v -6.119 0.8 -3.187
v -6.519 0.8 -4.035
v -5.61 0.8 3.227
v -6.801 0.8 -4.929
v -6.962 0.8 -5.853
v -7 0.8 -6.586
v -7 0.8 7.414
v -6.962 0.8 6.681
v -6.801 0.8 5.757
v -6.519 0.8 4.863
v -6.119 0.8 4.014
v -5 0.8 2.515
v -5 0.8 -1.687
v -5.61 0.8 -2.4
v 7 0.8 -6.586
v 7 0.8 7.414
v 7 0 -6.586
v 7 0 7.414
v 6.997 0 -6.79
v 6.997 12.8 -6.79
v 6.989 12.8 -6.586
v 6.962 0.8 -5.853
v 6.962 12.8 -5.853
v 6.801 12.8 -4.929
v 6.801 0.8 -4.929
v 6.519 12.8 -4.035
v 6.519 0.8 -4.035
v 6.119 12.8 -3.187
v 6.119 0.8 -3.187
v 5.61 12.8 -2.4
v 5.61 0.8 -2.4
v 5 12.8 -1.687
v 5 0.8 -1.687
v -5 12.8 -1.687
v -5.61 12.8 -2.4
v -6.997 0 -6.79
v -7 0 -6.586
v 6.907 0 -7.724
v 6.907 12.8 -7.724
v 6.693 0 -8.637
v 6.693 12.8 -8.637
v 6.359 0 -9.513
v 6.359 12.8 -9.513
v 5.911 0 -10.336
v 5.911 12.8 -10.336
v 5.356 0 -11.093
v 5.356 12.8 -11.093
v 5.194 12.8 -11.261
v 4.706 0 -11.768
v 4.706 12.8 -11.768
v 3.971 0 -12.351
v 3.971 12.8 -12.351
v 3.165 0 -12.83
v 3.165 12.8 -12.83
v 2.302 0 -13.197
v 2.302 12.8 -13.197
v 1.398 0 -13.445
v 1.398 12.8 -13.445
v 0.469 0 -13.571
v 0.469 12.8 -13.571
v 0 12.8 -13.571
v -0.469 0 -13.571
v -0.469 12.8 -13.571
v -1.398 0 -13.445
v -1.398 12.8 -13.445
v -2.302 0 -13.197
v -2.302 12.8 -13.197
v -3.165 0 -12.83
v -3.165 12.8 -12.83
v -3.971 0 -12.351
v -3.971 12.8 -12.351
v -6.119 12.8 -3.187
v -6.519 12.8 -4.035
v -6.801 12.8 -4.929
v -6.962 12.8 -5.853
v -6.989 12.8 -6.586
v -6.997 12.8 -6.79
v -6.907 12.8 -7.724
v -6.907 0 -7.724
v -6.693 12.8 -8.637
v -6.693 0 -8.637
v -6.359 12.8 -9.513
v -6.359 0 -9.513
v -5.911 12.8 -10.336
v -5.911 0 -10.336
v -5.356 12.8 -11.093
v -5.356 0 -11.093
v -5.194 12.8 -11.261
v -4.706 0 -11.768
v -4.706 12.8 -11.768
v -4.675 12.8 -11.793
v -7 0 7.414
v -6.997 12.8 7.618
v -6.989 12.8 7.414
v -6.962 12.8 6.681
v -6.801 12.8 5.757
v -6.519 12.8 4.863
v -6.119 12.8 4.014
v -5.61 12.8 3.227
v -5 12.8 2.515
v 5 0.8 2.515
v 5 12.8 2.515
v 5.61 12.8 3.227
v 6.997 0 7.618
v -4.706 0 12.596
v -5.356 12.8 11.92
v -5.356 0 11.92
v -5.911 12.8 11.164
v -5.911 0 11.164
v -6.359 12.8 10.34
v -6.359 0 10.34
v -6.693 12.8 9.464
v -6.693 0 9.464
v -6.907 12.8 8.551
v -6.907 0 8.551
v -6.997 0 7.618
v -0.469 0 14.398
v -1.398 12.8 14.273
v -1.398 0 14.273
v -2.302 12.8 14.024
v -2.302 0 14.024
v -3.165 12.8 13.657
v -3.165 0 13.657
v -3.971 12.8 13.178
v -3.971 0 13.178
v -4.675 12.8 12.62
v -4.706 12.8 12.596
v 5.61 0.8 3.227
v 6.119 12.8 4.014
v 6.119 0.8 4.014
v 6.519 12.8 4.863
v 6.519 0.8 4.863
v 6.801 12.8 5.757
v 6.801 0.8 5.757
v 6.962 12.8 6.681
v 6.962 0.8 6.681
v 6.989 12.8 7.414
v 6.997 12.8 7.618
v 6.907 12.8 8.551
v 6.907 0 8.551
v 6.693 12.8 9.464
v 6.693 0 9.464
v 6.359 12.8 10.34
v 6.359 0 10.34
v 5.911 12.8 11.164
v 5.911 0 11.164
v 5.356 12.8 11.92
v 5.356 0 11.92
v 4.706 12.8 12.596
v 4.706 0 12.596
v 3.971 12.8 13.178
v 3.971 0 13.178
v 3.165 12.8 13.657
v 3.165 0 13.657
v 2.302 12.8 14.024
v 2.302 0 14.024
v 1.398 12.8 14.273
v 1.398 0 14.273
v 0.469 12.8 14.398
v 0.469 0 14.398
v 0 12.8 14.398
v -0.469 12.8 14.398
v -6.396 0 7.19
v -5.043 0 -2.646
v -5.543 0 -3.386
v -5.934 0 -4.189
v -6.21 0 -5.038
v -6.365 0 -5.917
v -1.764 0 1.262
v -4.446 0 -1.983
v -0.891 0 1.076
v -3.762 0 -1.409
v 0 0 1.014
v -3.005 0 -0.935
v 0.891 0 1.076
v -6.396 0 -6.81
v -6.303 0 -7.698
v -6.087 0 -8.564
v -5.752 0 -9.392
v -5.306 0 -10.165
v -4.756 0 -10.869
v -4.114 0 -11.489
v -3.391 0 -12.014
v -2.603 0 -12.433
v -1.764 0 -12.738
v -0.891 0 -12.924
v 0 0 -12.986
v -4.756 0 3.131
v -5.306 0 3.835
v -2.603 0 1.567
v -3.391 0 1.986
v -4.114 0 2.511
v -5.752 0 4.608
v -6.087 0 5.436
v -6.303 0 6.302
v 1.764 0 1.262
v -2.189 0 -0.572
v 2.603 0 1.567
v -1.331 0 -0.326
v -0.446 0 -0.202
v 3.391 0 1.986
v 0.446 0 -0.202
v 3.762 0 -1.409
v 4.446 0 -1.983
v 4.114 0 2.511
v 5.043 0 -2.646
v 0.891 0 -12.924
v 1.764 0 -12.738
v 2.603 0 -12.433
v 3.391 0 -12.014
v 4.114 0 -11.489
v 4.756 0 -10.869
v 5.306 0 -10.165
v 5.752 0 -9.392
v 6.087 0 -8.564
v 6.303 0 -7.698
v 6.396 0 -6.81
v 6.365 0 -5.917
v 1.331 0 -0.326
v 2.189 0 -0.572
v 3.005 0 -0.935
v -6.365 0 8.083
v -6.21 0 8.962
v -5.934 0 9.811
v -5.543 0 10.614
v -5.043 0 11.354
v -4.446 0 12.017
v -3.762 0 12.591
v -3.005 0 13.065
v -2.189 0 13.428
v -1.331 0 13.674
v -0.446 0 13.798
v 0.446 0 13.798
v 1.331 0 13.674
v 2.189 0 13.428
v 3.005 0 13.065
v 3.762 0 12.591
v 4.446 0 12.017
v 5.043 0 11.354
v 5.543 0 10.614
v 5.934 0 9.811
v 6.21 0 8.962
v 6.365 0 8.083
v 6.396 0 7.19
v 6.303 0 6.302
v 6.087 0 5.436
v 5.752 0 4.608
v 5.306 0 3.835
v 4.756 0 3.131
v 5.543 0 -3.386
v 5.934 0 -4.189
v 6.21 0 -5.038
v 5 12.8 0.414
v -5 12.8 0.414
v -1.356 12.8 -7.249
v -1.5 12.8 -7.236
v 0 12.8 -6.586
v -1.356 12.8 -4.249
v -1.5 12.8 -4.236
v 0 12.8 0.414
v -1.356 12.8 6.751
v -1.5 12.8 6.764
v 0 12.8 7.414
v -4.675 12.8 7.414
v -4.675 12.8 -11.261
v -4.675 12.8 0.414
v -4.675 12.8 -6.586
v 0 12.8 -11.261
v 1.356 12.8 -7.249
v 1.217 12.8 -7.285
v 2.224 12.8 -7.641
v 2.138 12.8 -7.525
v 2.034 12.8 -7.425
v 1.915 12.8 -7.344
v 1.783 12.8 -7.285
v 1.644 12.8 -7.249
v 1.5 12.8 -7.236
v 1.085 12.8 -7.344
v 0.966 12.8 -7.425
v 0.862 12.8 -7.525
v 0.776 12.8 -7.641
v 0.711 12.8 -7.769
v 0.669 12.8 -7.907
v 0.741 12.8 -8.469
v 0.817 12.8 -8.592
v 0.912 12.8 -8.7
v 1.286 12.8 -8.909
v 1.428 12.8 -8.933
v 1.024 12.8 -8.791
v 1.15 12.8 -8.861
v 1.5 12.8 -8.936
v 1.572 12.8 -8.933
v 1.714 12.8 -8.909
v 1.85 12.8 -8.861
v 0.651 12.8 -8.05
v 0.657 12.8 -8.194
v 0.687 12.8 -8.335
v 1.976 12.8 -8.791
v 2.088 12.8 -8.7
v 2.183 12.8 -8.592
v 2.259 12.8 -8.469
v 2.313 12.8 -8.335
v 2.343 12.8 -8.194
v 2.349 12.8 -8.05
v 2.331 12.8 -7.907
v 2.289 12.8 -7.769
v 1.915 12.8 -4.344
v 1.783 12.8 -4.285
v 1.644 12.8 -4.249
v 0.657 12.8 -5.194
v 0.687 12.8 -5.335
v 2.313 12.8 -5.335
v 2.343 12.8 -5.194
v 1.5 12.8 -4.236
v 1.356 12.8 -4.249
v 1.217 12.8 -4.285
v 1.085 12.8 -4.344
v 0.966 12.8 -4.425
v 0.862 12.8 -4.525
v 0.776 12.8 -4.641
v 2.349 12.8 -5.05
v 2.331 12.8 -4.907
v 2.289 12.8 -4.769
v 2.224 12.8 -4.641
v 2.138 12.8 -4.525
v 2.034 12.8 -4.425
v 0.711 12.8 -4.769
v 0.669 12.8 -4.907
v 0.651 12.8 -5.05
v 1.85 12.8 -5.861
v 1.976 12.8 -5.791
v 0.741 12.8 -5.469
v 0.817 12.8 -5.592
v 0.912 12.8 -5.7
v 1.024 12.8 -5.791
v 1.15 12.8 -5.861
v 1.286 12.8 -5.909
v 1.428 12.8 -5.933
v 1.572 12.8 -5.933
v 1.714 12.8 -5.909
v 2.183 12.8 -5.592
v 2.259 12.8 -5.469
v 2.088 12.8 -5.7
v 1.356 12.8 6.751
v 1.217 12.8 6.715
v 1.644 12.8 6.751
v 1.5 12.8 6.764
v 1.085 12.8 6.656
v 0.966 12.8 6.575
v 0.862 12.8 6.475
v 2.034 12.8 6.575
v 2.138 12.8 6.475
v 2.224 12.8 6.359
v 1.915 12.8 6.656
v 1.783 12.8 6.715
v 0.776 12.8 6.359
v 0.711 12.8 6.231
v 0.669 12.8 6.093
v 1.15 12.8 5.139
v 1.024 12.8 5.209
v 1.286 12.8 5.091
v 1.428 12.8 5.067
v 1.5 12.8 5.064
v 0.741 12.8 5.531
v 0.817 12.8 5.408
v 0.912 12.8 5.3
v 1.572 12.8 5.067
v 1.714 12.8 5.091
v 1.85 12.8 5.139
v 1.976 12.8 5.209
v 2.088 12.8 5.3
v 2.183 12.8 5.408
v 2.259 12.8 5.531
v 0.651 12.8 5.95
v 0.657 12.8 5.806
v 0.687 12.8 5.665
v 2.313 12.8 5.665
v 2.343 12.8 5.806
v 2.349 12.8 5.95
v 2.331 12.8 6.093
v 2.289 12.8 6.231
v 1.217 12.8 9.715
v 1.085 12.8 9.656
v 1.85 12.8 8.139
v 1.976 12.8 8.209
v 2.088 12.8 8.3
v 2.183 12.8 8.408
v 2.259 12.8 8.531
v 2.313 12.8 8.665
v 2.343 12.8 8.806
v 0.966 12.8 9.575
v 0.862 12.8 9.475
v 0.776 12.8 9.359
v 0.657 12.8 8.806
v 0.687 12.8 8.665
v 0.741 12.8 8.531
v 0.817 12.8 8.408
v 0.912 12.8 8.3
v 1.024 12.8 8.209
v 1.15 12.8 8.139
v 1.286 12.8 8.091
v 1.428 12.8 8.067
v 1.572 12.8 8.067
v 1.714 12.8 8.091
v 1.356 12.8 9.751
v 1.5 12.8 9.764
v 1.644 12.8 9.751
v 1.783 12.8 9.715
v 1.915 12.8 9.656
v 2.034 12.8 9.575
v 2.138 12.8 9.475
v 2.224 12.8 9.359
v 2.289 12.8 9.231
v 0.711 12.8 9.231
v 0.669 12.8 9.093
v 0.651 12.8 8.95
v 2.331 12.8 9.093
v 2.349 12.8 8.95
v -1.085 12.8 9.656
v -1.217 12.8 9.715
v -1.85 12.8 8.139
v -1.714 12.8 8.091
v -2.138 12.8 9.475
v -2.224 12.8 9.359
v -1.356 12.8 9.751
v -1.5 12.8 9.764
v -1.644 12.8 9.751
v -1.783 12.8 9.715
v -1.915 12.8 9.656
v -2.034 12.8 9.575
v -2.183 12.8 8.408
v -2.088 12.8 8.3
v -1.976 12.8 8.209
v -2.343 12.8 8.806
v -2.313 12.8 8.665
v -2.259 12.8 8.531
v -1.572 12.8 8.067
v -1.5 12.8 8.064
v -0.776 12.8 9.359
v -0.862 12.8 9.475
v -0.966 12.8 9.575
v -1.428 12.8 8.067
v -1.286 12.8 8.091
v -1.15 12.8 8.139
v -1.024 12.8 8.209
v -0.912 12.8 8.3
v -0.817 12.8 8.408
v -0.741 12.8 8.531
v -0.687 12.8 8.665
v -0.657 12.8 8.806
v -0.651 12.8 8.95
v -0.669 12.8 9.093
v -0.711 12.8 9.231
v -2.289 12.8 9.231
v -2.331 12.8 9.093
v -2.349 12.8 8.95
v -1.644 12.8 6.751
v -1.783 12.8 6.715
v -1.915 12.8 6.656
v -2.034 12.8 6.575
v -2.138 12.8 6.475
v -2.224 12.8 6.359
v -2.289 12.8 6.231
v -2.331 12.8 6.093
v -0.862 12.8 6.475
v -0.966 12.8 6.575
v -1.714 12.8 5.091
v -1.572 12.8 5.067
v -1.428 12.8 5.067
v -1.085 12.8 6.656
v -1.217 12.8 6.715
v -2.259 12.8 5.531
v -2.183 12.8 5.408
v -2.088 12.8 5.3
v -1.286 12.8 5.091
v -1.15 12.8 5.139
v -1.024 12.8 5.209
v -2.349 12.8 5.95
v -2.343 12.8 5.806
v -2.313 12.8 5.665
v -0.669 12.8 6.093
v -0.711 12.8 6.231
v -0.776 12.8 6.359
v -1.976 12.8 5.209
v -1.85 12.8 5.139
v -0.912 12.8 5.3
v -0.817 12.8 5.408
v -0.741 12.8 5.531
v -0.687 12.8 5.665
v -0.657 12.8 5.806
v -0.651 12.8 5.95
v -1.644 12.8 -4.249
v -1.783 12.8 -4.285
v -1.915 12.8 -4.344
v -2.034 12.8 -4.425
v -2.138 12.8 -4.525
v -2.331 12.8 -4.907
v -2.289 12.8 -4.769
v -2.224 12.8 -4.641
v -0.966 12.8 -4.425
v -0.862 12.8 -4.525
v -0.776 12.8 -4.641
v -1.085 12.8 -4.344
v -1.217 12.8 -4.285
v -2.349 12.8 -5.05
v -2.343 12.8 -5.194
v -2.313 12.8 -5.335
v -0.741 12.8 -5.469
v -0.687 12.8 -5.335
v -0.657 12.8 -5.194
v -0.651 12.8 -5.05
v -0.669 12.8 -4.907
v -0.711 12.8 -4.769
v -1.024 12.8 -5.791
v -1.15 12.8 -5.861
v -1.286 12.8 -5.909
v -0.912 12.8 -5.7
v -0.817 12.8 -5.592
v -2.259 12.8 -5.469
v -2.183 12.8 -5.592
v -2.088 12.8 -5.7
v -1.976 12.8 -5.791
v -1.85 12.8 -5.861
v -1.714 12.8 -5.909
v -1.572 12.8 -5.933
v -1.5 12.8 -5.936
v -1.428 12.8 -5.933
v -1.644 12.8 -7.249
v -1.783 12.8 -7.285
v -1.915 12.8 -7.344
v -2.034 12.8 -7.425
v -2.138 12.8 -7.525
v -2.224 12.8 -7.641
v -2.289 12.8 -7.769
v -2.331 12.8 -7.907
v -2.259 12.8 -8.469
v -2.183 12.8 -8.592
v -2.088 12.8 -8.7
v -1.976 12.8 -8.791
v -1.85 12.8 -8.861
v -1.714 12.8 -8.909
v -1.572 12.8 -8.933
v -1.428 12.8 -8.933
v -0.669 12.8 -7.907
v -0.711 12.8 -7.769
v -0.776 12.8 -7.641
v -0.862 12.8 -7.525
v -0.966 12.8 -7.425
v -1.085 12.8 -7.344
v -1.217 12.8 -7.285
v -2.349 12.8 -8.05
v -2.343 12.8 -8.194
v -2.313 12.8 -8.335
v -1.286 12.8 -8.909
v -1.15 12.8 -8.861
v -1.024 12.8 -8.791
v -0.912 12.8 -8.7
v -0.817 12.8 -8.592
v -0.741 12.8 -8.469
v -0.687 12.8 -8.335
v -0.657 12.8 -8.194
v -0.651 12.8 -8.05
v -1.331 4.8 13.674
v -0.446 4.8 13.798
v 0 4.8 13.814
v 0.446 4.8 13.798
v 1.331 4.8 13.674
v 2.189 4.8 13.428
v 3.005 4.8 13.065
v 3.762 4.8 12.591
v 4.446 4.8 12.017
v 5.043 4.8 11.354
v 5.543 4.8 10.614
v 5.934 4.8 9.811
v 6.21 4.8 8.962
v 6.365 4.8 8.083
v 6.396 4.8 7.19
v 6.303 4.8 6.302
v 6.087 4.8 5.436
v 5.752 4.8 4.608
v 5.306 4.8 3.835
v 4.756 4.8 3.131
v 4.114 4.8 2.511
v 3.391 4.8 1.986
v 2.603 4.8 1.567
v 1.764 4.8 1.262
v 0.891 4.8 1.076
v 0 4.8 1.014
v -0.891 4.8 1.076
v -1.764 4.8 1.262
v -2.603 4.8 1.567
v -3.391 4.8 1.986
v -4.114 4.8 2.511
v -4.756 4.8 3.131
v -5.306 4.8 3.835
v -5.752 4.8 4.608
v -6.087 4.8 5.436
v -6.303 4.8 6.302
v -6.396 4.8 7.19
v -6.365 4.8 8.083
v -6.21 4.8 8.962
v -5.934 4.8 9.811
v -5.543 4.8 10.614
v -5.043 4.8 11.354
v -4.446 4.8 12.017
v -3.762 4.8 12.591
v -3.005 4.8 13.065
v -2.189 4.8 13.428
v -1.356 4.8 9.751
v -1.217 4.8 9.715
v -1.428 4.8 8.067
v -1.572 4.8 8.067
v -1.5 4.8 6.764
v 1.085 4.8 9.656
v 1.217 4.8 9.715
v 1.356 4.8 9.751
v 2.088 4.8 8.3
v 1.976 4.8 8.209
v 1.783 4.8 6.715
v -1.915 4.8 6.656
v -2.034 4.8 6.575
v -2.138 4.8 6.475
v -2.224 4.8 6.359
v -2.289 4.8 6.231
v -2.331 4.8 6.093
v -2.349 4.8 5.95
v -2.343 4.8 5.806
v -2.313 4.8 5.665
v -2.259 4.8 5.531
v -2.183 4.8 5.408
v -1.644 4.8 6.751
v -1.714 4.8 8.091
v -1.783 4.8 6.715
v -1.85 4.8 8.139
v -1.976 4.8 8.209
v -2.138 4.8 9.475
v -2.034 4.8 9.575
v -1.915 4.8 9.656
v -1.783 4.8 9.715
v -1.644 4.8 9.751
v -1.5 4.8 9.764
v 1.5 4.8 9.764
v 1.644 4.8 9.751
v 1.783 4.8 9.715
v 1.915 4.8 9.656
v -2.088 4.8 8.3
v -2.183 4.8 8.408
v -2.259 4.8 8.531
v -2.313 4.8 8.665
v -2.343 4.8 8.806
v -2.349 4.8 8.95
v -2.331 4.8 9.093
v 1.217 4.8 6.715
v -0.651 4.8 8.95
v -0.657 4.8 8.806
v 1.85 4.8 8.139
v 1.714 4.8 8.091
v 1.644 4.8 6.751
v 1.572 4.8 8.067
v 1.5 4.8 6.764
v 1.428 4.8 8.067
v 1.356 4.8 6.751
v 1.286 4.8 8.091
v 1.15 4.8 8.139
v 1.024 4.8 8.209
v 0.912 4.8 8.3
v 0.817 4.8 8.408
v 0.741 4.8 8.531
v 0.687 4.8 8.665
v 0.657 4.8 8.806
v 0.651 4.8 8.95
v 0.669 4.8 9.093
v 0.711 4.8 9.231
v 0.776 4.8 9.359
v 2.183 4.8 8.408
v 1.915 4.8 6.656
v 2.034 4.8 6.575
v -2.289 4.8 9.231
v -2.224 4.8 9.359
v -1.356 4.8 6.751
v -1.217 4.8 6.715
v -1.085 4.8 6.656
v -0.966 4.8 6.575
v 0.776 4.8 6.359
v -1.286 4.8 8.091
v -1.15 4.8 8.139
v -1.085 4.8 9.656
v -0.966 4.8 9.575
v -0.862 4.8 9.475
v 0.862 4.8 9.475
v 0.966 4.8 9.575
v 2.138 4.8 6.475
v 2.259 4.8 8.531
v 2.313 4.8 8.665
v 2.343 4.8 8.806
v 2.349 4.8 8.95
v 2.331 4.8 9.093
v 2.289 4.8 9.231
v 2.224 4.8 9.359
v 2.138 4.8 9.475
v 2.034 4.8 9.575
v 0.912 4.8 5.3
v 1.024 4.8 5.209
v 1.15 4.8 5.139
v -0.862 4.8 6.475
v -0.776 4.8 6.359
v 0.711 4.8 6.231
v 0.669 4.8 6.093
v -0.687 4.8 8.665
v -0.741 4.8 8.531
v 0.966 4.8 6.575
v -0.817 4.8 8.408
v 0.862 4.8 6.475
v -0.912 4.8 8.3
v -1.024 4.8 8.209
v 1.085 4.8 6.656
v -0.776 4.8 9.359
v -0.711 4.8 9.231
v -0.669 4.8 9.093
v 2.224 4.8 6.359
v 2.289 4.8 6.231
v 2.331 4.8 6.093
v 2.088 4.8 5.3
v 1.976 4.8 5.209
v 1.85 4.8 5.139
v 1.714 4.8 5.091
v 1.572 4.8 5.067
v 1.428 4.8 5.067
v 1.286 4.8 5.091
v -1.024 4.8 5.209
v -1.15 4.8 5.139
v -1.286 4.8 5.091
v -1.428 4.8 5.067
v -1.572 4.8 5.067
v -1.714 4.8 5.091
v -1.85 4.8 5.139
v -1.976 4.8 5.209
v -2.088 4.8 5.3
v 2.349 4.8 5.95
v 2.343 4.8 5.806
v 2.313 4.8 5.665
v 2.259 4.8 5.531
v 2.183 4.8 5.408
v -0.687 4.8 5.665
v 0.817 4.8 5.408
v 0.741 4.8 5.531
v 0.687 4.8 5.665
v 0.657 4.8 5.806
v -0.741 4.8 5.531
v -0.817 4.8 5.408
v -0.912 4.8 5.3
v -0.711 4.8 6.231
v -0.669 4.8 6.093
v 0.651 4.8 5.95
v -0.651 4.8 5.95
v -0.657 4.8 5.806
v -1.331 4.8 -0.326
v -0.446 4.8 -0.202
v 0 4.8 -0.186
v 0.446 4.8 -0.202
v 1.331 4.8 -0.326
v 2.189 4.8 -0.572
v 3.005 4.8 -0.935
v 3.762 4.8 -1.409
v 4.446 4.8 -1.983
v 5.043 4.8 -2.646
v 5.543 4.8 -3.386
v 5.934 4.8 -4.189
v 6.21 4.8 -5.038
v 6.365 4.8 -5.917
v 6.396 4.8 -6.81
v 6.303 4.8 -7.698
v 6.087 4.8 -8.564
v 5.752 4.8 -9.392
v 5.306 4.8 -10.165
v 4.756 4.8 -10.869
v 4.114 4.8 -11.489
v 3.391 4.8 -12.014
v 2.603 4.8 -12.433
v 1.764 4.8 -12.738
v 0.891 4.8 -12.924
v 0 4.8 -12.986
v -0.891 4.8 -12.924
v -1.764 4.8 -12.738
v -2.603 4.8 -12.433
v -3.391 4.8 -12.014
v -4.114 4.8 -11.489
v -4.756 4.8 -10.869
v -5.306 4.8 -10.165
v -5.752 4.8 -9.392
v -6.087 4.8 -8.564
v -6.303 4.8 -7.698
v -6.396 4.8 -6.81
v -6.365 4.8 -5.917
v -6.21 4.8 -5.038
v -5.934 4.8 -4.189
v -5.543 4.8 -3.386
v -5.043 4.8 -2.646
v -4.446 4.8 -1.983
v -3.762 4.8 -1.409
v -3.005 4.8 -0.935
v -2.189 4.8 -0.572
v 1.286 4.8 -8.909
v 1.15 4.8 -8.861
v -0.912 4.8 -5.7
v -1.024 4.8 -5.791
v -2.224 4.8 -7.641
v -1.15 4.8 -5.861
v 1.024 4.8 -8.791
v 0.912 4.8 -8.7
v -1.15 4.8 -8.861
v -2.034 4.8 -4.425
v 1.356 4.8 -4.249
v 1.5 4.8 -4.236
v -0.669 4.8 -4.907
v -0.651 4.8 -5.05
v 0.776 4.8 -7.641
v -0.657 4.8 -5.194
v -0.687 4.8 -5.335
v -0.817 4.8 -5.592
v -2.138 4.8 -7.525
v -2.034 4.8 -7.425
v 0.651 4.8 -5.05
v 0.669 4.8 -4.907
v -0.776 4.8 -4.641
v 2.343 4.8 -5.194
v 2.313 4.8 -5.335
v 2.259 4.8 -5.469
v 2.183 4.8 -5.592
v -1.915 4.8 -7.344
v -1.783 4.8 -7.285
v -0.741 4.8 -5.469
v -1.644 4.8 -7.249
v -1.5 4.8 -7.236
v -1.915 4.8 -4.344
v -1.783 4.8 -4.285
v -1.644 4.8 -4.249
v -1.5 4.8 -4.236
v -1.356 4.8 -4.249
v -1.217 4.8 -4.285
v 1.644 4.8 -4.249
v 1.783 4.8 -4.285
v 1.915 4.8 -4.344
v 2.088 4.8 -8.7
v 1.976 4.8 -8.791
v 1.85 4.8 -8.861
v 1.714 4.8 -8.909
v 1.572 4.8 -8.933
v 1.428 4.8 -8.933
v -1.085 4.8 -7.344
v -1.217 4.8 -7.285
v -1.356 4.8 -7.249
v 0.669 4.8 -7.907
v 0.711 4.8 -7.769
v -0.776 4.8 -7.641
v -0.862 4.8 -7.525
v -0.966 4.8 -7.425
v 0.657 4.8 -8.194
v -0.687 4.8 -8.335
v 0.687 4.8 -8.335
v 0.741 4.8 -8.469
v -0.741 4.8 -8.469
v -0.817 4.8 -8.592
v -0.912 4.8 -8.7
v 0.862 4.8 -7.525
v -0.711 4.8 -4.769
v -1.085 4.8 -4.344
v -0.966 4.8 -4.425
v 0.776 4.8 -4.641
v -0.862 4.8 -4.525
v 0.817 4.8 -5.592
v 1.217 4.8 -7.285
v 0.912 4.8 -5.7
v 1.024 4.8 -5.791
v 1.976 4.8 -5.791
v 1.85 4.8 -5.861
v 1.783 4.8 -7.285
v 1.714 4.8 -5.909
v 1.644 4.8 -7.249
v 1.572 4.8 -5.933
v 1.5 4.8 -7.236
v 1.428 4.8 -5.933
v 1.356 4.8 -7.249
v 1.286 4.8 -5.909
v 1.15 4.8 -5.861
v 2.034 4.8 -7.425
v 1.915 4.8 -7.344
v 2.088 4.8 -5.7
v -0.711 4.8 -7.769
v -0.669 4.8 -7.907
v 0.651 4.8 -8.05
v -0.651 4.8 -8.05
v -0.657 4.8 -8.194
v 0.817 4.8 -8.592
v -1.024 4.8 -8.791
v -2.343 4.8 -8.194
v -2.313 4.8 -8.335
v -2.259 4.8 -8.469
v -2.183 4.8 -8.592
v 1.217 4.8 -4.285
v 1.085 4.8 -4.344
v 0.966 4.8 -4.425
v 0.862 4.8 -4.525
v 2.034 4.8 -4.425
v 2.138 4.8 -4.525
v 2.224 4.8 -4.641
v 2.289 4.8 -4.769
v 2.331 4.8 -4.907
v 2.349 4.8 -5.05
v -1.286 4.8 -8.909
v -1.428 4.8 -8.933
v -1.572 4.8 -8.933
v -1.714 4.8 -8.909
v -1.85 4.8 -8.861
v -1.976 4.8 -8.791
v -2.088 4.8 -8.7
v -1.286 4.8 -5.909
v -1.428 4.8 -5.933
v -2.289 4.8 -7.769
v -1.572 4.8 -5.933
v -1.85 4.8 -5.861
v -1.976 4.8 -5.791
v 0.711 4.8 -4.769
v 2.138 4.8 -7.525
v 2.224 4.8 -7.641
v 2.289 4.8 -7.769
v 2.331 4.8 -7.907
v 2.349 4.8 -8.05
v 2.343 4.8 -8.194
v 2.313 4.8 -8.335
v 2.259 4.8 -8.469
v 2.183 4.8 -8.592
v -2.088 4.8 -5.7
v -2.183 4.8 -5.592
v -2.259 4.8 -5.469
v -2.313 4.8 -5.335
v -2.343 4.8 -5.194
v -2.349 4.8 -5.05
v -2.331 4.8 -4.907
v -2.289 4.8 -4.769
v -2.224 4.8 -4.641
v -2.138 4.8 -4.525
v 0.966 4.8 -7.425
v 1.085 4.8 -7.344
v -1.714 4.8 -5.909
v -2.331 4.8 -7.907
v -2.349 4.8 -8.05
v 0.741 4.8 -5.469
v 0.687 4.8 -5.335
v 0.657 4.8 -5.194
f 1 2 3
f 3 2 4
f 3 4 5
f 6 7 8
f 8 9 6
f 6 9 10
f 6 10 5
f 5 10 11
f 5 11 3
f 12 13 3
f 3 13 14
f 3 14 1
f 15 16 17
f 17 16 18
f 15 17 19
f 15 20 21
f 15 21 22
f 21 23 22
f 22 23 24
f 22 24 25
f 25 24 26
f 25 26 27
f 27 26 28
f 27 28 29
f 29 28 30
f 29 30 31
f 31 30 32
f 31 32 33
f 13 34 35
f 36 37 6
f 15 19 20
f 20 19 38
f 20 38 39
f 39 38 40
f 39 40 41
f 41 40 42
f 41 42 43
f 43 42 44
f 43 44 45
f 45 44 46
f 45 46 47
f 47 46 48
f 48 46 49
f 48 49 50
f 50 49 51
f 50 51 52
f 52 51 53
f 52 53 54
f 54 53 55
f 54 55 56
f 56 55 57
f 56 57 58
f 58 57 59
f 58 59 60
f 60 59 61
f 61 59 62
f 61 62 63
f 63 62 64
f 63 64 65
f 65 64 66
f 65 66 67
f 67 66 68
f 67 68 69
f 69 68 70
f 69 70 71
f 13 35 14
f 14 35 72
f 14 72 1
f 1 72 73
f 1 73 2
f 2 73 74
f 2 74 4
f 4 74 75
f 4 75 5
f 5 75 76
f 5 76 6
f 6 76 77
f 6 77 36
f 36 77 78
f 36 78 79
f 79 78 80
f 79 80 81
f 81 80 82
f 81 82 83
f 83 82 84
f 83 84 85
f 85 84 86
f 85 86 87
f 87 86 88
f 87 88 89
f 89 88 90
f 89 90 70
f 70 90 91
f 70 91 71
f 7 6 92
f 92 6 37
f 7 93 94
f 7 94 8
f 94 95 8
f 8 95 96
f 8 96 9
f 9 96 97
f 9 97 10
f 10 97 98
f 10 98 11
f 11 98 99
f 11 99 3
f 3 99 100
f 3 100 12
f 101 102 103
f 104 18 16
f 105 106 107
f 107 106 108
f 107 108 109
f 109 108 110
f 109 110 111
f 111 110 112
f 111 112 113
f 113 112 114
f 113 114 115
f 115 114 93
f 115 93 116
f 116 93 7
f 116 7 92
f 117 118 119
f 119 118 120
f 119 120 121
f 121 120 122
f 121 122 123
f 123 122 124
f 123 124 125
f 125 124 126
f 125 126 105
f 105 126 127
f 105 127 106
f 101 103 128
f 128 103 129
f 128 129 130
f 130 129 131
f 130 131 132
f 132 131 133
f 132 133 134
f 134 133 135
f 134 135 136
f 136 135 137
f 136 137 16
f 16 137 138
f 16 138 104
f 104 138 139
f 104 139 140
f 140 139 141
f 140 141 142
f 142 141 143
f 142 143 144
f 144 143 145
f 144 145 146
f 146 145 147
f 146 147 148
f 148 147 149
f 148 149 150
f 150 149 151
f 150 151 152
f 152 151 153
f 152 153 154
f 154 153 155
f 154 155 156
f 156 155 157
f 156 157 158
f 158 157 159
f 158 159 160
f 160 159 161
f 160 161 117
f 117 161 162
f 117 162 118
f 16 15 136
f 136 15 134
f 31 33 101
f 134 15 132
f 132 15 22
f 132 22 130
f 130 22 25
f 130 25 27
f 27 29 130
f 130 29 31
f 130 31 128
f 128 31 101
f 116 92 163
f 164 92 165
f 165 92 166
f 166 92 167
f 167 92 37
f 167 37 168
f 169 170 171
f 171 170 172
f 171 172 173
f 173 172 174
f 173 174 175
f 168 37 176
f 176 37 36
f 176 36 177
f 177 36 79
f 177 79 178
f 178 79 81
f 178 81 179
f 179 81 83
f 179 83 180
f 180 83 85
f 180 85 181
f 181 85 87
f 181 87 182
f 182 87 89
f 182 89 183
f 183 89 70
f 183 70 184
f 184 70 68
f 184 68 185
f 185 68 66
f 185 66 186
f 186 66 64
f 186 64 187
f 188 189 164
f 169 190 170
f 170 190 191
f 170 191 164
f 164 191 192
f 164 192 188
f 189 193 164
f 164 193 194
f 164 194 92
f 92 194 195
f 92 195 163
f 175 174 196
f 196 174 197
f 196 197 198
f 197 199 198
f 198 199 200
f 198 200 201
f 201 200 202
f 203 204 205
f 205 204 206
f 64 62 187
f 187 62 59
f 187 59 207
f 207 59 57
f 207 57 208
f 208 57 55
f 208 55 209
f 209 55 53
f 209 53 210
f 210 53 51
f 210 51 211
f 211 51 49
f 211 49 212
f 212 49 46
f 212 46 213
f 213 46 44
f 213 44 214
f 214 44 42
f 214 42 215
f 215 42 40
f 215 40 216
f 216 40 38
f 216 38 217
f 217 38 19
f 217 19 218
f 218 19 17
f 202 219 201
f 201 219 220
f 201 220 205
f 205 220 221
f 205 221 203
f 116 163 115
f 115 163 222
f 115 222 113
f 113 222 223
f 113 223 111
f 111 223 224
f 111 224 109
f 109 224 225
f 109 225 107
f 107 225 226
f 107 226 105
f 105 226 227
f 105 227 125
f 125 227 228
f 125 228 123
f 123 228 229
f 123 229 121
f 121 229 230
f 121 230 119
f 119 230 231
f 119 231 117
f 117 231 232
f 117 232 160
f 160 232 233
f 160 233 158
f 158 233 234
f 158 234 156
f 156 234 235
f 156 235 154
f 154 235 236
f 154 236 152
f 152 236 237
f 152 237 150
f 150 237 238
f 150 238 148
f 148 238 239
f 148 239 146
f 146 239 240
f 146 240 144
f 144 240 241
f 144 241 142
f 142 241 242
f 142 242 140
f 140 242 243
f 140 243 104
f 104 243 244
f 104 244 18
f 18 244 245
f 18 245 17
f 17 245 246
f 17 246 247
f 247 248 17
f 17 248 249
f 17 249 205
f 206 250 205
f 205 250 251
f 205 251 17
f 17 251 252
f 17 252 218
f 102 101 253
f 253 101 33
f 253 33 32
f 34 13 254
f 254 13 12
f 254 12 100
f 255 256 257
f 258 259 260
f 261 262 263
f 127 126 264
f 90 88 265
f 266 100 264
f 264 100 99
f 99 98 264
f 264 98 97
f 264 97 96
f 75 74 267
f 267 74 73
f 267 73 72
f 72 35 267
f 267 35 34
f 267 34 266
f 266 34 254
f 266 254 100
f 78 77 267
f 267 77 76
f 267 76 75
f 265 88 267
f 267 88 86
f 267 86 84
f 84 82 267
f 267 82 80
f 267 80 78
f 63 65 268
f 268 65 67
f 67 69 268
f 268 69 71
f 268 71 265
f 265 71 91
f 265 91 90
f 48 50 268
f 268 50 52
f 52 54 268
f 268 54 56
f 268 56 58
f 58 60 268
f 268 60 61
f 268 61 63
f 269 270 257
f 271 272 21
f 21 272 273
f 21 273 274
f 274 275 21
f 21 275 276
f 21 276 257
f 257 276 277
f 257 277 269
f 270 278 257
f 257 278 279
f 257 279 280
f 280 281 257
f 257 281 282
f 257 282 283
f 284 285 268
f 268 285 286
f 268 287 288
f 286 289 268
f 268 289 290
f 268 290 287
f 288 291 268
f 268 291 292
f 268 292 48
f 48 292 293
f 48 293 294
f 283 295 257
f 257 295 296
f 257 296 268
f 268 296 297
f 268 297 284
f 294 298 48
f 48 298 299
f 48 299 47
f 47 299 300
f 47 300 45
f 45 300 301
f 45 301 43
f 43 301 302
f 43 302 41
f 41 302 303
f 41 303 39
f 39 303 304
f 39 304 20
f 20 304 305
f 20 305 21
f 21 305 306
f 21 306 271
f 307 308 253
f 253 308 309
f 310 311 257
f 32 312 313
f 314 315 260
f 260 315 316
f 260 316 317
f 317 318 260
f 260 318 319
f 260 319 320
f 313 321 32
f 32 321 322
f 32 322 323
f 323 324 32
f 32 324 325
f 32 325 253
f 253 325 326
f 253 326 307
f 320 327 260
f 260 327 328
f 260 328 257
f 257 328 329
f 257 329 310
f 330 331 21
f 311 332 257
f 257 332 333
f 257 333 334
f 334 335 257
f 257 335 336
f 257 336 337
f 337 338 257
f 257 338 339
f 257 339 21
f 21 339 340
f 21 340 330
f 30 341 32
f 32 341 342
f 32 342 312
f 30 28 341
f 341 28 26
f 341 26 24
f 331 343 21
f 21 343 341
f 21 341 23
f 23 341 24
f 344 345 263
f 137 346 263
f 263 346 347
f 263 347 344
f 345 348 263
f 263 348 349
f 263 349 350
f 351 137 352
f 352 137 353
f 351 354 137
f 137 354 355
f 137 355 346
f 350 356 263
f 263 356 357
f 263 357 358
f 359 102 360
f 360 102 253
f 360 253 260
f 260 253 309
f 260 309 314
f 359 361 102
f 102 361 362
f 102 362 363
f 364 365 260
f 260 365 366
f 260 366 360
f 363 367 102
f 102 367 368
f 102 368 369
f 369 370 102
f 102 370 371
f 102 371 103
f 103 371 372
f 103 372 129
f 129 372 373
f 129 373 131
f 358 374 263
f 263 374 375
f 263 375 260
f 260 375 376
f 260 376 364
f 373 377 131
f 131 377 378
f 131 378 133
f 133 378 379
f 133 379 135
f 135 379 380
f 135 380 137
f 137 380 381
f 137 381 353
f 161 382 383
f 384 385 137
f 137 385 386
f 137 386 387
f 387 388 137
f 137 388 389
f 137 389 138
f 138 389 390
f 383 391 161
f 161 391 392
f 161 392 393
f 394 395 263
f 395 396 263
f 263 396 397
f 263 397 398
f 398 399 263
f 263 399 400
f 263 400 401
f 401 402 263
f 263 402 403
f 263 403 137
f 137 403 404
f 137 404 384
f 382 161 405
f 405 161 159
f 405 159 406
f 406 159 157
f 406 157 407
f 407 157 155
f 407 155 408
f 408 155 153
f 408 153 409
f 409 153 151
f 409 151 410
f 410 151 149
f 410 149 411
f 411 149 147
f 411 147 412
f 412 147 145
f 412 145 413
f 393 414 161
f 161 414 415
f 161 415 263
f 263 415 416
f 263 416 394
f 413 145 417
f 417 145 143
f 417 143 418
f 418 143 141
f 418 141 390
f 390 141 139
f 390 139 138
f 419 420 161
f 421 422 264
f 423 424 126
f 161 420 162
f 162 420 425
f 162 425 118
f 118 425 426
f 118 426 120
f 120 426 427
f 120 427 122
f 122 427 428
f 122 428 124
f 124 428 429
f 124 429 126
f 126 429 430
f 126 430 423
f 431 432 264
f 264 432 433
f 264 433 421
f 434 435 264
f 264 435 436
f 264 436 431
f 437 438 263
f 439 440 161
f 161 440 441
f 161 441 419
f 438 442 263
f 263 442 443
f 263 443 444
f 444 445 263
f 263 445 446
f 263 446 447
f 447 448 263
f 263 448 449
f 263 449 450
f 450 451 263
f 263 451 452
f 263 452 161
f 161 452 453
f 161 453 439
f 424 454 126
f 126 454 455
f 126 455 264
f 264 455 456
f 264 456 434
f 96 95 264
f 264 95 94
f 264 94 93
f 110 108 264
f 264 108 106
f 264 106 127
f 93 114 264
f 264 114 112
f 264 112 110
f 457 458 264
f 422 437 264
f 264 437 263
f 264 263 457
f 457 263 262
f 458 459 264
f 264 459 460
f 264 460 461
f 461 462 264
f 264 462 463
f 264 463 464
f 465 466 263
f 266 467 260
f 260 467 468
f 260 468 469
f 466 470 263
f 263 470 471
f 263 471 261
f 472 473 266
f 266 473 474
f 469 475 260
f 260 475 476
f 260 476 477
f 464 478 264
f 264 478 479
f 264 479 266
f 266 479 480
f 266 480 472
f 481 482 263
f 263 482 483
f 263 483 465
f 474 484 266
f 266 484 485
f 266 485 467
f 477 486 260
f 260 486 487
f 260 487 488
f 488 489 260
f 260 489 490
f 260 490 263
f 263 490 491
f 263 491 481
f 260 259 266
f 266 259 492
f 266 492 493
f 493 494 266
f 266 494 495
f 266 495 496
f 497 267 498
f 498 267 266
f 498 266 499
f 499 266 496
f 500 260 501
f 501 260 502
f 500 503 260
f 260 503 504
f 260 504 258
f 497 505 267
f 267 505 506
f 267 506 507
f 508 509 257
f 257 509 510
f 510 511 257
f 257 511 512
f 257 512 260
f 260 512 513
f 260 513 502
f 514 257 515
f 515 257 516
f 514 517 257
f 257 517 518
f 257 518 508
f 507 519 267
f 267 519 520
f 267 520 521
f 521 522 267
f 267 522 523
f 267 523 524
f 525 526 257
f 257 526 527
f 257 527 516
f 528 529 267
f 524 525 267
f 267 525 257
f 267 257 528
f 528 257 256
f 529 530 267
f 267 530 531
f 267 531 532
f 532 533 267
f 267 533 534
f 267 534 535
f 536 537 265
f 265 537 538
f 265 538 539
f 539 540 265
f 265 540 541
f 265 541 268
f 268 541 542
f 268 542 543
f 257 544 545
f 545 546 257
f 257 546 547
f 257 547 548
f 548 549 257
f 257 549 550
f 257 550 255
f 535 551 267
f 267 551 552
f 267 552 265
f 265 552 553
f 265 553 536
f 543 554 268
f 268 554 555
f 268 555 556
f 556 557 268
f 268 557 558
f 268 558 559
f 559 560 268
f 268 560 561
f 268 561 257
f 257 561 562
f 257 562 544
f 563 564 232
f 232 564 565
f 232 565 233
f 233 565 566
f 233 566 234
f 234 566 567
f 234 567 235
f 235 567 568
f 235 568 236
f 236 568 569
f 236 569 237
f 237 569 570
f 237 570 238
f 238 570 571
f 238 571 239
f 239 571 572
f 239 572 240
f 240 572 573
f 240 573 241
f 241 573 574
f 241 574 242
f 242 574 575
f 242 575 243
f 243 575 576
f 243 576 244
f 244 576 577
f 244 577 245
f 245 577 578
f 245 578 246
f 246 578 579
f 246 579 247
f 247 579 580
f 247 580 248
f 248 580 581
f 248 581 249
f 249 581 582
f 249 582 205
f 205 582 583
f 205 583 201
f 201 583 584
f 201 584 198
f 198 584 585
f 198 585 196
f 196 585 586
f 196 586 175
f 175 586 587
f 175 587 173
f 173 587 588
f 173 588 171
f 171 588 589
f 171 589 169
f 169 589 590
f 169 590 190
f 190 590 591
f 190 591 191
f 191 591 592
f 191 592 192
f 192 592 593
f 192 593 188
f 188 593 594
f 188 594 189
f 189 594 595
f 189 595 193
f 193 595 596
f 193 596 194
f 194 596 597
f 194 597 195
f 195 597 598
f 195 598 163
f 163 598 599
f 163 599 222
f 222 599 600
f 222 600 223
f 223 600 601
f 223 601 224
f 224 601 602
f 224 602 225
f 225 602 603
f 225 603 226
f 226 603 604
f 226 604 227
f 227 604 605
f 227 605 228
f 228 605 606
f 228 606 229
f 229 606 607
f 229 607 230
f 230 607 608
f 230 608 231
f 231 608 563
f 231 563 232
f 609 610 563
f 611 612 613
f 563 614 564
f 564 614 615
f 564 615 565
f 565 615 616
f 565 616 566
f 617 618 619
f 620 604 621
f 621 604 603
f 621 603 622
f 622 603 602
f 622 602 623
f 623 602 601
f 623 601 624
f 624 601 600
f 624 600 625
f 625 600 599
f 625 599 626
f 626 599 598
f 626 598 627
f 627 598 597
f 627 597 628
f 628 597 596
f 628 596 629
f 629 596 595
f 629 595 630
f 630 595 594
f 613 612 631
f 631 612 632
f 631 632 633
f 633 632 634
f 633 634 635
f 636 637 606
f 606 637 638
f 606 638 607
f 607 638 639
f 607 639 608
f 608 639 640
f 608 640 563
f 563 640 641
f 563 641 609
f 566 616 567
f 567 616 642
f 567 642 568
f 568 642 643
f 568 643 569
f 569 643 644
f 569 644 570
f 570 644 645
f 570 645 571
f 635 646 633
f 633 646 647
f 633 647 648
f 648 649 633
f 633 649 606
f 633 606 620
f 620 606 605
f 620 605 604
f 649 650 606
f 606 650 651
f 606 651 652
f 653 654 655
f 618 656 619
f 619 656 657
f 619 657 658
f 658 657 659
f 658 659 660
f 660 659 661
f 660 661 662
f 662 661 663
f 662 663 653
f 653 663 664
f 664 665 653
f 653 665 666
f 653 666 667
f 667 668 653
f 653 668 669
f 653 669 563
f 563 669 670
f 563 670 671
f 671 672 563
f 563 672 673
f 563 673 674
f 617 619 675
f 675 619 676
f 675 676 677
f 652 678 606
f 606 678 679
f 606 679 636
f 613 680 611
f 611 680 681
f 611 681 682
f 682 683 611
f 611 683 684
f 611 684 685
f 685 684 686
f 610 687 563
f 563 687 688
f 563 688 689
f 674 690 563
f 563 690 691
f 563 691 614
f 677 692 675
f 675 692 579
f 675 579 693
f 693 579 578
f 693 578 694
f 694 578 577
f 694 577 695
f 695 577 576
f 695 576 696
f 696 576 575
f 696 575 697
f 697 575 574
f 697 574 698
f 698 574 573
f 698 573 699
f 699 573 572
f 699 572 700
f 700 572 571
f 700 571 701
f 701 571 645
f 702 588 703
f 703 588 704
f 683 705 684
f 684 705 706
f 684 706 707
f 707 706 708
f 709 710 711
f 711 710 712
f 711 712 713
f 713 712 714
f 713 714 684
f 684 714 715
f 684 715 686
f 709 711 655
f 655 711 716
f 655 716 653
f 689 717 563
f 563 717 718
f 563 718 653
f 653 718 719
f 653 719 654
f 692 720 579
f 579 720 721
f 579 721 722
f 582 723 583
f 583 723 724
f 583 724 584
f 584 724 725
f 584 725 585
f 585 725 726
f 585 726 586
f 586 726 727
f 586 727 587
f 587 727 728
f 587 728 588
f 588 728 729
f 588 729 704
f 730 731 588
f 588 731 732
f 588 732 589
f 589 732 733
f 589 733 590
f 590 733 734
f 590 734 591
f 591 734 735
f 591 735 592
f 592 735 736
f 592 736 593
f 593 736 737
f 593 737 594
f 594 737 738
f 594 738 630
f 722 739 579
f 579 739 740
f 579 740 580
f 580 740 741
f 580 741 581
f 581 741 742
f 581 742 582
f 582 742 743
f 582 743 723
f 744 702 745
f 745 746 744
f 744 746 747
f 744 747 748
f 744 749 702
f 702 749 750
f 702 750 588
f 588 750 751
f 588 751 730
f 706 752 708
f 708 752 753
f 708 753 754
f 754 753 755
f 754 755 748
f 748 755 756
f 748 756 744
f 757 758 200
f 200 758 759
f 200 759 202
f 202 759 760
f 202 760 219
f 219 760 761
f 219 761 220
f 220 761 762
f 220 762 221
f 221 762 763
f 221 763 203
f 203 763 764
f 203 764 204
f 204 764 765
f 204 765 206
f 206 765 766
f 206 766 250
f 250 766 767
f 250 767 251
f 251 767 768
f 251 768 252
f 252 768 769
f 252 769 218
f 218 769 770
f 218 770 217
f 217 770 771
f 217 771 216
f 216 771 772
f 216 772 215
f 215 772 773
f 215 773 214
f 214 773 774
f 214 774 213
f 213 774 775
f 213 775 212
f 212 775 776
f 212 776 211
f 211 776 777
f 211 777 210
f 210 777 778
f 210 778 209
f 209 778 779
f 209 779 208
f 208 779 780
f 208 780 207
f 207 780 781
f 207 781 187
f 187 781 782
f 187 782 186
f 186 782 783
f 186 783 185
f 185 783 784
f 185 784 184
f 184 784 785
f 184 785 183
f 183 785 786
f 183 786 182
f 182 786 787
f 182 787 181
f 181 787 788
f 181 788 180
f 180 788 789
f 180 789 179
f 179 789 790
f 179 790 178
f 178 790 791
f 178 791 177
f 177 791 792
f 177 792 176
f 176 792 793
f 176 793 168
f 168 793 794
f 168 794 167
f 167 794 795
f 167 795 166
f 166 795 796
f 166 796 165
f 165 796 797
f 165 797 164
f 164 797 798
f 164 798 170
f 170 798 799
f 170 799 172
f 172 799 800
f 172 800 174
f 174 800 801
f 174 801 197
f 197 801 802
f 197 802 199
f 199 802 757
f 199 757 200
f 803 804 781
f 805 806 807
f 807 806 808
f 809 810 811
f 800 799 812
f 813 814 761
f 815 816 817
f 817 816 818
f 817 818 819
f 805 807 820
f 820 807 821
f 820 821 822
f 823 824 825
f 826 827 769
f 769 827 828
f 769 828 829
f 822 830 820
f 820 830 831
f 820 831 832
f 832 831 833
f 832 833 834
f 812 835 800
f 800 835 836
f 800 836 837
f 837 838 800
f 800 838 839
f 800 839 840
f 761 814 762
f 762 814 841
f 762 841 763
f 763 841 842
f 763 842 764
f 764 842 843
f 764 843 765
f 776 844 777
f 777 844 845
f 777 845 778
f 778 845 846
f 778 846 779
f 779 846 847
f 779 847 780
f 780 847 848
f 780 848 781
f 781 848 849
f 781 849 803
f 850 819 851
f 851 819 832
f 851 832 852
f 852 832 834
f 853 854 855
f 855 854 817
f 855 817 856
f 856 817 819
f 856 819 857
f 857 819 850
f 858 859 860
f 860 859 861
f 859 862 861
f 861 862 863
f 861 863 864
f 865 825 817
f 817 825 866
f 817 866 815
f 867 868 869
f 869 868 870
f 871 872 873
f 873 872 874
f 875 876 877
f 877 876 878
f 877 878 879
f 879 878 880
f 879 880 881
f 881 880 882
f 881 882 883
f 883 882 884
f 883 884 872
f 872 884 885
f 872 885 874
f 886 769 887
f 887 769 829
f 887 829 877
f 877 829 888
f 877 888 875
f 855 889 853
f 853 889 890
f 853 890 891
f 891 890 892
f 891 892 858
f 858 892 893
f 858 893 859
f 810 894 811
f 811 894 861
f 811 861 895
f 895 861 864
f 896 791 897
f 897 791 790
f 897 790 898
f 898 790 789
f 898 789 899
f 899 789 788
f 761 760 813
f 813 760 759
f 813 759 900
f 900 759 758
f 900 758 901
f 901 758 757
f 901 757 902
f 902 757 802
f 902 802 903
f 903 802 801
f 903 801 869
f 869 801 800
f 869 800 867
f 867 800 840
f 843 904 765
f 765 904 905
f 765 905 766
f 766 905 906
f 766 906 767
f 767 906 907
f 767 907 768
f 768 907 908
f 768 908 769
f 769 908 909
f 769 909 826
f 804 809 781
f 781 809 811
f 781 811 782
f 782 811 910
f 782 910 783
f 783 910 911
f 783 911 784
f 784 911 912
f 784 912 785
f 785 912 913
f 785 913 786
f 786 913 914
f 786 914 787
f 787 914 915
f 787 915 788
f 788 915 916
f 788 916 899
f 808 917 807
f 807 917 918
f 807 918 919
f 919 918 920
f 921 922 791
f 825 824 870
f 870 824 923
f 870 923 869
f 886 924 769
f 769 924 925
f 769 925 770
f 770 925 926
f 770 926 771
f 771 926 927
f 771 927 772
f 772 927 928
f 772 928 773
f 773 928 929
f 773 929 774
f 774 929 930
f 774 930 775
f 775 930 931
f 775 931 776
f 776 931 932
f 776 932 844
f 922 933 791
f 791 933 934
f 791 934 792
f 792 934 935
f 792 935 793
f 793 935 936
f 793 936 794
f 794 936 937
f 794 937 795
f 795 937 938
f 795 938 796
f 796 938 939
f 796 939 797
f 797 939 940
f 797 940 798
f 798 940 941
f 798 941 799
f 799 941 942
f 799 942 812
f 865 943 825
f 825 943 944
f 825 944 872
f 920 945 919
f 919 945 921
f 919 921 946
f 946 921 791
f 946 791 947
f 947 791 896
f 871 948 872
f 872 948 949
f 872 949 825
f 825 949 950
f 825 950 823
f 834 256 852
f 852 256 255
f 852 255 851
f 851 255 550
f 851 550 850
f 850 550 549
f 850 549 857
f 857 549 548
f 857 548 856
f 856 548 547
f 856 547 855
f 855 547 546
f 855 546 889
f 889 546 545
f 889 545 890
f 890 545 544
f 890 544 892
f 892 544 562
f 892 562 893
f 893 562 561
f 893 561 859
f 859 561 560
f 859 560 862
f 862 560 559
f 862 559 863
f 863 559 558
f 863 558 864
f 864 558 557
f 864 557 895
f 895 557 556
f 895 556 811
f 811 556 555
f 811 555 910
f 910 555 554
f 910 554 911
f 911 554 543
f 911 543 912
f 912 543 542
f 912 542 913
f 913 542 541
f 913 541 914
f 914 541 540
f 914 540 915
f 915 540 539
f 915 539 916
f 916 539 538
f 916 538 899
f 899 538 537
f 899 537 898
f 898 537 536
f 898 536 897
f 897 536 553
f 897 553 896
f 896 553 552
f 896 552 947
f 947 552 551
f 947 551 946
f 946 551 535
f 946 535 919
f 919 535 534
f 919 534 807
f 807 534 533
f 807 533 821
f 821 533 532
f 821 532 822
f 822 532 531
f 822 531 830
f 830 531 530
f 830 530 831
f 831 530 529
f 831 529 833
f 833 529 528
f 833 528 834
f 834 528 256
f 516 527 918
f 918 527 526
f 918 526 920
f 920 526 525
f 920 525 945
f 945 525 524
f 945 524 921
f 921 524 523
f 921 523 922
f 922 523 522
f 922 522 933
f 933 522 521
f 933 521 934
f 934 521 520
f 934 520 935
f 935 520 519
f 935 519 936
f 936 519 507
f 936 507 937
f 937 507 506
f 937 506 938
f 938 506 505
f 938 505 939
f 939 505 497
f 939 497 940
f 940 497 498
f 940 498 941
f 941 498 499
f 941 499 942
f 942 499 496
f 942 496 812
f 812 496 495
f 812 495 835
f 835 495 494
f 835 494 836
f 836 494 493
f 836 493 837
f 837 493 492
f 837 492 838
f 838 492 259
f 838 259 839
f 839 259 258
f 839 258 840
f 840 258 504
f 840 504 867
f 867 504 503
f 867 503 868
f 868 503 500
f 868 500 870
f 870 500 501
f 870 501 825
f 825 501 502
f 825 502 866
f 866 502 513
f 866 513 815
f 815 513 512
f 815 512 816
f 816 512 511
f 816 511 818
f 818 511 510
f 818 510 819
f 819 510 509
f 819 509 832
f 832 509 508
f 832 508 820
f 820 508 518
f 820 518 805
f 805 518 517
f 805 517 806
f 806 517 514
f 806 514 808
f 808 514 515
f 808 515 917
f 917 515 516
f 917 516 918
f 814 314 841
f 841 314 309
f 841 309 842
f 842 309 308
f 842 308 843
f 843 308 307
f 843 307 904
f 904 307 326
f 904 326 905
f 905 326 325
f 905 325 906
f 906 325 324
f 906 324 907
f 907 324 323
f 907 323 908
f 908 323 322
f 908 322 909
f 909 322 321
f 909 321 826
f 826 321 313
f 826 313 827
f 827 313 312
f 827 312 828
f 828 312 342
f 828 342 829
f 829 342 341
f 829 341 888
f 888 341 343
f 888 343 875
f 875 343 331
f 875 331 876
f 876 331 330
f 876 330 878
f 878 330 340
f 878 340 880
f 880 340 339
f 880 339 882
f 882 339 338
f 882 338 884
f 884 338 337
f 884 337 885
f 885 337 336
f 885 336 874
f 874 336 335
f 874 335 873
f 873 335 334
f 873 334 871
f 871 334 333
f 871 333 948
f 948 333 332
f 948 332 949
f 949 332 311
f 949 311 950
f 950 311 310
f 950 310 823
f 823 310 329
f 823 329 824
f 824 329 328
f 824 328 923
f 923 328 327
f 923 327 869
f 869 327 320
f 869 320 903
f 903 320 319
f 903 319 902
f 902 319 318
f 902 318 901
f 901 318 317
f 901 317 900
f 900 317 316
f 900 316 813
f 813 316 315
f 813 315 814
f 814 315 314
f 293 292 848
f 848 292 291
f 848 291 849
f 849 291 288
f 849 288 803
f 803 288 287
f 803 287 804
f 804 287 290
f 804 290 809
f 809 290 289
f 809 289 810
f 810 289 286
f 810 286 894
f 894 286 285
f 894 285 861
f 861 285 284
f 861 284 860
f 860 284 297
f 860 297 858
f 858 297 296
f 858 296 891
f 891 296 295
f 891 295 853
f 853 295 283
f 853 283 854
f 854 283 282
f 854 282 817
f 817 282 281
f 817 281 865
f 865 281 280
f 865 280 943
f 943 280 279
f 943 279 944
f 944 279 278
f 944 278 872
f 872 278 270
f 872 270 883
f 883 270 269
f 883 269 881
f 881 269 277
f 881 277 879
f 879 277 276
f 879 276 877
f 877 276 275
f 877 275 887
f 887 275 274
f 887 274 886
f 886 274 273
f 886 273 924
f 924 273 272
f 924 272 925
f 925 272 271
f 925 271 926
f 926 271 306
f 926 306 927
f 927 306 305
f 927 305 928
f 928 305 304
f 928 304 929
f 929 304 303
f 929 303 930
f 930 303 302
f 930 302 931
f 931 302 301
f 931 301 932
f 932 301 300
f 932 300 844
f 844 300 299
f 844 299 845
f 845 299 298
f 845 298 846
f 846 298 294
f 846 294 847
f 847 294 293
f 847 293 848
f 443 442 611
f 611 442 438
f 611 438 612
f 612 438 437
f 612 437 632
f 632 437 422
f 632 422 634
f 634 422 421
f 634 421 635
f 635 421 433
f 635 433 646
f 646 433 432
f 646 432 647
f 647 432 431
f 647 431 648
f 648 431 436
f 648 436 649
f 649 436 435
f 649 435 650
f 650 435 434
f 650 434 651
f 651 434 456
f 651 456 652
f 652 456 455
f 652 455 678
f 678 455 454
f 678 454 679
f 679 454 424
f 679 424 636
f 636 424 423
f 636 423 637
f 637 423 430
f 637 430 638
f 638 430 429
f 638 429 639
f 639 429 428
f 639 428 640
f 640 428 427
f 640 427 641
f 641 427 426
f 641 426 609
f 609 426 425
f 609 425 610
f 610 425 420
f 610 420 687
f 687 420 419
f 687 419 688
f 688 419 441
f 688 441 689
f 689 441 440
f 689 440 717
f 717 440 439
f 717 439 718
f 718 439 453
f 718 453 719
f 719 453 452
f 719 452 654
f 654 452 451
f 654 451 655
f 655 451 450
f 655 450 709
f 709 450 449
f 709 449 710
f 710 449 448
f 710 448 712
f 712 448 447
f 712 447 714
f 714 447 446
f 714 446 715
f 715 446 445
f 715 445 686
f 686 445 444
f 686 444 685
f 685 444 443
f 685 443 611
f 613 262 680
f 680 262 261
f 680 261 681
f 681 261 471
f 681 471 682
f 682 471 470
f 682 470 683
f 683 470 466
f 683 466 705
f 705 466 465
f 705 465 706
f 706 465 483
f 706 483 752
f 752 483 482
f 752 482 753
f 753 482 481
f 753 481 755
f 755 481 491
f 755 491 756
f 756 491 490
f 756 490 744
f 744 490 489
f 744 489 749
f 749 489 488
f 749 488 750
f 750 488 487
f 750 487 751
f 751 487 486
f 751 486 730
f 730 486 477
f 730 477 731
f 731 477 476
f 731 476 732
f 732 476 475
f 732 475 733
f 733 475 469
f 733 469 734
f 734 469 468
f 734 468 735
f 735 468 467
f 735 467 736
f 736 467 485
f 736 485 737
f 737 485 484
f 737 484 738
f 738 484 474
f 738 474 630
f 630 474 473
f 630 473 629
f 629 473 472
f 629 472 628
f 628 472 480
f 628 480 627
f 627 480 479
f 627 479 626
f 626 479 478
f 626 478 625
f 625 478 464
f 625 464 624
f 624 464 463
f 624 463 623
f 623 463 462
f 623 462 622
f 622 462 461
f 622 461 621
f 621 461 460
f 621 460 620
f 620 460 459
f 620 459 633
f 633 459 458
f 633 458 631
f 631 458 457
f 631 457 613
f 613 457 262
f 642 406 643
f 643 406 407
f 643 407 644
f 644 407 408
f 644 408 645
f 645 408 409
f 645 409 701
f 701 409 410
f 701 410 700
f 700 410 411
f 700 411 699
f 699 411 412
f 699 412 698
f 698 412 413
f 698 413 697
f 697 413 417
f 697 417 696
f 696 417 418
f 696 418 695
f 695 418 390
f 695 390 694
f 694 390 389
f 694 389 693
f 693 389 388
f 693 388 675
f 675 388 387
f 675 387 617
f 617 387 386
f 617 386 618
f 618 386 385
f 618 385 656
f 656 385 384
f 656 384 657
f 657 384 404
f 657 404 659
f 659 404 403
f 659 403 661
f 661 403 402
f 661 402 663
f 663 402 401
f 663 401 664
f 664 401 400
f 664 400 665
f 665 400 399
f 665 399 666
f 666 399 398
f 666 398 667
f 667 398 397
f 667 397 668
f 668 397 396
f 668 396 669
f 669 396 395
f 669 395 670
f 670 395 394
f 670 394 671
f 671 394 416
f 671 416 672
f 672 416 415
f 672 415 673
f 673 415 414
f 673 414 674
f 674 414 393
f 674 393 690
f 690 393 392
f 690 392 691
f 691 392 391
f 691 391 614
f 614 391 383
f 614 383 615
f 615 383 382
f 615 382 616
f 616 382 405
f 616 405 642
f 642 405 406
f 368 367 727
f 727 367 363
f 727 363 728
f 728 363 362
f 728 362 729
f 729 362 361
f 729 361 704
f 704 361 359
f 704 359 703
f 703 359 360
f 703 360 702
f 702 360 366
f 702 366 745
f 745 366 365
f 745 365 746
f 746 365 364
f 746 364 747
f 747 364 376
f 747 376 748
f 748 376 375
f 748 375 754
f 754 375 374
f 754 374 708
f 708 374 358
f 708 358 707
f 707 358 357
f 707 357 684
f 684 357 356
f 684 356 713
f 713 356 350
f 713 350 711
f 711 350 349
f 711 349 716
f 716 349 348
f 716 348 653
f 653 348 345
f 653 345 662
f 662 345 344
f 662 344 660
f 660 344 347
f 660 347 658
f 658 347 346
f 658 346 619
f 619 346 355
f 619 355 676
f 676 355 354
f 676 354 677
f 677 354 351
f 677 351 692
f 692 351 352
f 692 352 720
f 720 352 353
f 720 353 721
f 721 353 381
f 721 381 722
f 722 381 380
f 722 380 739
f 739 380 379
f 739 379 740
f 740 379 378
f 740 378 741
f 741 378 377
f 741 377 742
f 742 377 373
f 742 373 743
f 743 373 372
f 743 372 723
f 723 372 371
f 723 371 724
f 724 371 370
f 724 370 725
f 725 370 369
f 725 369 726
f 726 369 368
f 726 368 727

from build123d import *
from build123d.topology import SkipClean

# Parameters (mm, degrees)
EXTRUDE_1_DEPTH     = 0.8
SKETCH_2_R          = 6.4
EXTRUDE_2_DEPTH     = 4
EXTRUDE_3_DEPTH     = 8
CUT_EXTRUDE_1_REACH = 22.508
SKETCH_4_R          = 6.4
SKETCH_5_R          = 0.85
CUT_EXTRUDE_2_DEPTH = 21.508362032


# Read off the part's stored shape, not the designer's step: 填料-伸長3
with BuildPart() as part:
    # 草圖1 → 填料-伸長1 (new body)
    with BuildSketch(Plane(origin=(0, 0, 0), x_dir=(1, 0, 0), z_dir=(0, 1, 0))):
        with BuildLine():
            Line((7, 6.586363636), (7, -7.413636364))
            ThreePointArc((7, -7.413636364), (0, -14.413636364), (-7, -7.413636364))
            Line((-7, -7.413636364), (-7, 6.586363636))
            ThreePointArc((-7, 6.586363636), (0, 13.586363636), (7, 6.586363636))
        make_face()
    extrude(amount=EXTRUDE_1_DEPTH)

    # 草圖2 → 填料-伸長2 (add)
    with SkipClean():  # the faces are left unmerged after this step: merging them gives an invalid solid
        with BuildSketch(Plane(origin=(0, 0.8, 0), x_dir=(1, 0, 0), z_dir=(0, 1, 0))):
            with BuildLine():
                Line((5, -2.514656878), (5, 1.687384151))
                ThreePointArc((5, 1.687384151), (0, 13.586363636), (-5, 1.687384151))
                Line((-5, 1.687384151), (-5, -2.514656878))
                ThreePointArc((-5, -2.514656878), (0, -14.413636364), (5, -2.514656878))
            make_face()
            with Locations(Location((0, 6.586363636, 0), (0, 0, 270))):
                Circle(SKETCH_2_R, mode=Mode.SUBTRACT)
            with Locations(Location((0, -7.413636364, 0), (0, 0, 270))):
                Circle(SKETCH_2_R, mode=Mode.SUBTRACT)
        extrude(amount=EXTRUDE_2_DEPTH)

    # 填料-伸長3 outline → 填料-伸長3 (add)
    with SkipClean():  # the faces are left unmerged after this step: merging them gives an invalid solid
        with BuildSketch(Plane(origin=(0, 4.8, 0), x_dir=(1, 0, 0), z_dir=(0, 1, 0))):
            with BuildLine():
                ThreePointArc((5, 1.687384151), (0, 13.586363636), (-5, 1.687384151))
                Line((-5, 1.687384151), (-5, -2.514656878))
                ThreePointArc((-5, -2.514656878), (0, -14.413636364), (5, -2.514656878))
                Line((5, -2.514656878), (5, 1.687384151))
            make_face()
        extrude(amount=EXTRUDE_3_DEPTH)

    # 草圖4 → 除料-伸長1 (cut, up to next)
    with BuildSketch(Plane.XZ, mode=Mode.PRIVATE) as cut_extrude_1_sk1:
        with Locations(Location((0, 7.413636364, 0), (0, 0, 270))):
            Circle(SKETCH_4_R)
    cut_extrude_1_tool1 = extrude(cut_extrude_1_sk1.sketch, amount=-CUT_EXTRUDE_1_REACH, mode=Mode.PRIVATE) & part.part
    # 草圖4 → 除料-伸長1 (cut, up to next)
    with BuildSketch(Plane.XZ, mode=Mode.PRIVATE) as cut_extrude_1_sk2:
        with Locations(Location((0, -6.586363636, 0), (0, 0, 270))):
            Circle(SKETCH_4_R)
    cut_extrude_1_tool2 = extrude(cut_extrude_1_sk2.sketch, amount=-CUT_EXTRUDE_1_REACH, mode=Mode.PRIVATE) & part.part
    add(cut_extrude_1_tool1.solids().sort_by_distance((0, 0, 7.413636))[0], mode=Mode.SUBTRACT)
    add(cut_extrude_1_tool2.solids().sort_by_distance((0, 0, -6.586364))[0], mode=Mode.SUBTRACT)

    # 草圖5 → 除料-伸長2 (cut, through all)
    with SkipClean():  # the faces are left unmerged after this step: merging them gives an invalid solid
        with BuildSketch(Plane(origin=(0, 12.8, 0), x_dir=(1, 0, 0), z_dir=(0, 1, 0))):
            with Locations(Location((-1.5, 8.086363636, 0), (0, 0, 270))):
                Circle(SKETCH_5_R)
            with Locations(Location((1.5, 8.086363636, 0), (0, 0, 270))):
                Circle(SKETCH_5_R)
            with Locations(Location((1.5, 5.086363636, 0), (0, 0, 270))):
                Circle(SKETCH_5_R)
            with Locations(Location((-1.5, 5.086363636, 0), (0, 0, 270))):
                Circle(SKETCH_5_R)
            with Locations(Location((1.5, -5.913636364, 0), (0, 0, 270))):
                Circle(SKETCH_5_R)
            with Locations(Location((1.5, -8.913636364, 0), (0, 0, 270))):
                Circle(SKETCH_5_R)
            with Locations(Location((-1.5, -5.913636364, 0), (0, 0, 270))):
                Circle(SKETCH_5_R)
            with Locations(Location((-1.5, -8.913636364, 0), (0, 0, 270))):
                Circle(SKETCH_5_R)
        extrude(amount=-CUT_EXTRUDE_2_DEPTH, mode=Mode.SUBTRACT)


solid = part.part
